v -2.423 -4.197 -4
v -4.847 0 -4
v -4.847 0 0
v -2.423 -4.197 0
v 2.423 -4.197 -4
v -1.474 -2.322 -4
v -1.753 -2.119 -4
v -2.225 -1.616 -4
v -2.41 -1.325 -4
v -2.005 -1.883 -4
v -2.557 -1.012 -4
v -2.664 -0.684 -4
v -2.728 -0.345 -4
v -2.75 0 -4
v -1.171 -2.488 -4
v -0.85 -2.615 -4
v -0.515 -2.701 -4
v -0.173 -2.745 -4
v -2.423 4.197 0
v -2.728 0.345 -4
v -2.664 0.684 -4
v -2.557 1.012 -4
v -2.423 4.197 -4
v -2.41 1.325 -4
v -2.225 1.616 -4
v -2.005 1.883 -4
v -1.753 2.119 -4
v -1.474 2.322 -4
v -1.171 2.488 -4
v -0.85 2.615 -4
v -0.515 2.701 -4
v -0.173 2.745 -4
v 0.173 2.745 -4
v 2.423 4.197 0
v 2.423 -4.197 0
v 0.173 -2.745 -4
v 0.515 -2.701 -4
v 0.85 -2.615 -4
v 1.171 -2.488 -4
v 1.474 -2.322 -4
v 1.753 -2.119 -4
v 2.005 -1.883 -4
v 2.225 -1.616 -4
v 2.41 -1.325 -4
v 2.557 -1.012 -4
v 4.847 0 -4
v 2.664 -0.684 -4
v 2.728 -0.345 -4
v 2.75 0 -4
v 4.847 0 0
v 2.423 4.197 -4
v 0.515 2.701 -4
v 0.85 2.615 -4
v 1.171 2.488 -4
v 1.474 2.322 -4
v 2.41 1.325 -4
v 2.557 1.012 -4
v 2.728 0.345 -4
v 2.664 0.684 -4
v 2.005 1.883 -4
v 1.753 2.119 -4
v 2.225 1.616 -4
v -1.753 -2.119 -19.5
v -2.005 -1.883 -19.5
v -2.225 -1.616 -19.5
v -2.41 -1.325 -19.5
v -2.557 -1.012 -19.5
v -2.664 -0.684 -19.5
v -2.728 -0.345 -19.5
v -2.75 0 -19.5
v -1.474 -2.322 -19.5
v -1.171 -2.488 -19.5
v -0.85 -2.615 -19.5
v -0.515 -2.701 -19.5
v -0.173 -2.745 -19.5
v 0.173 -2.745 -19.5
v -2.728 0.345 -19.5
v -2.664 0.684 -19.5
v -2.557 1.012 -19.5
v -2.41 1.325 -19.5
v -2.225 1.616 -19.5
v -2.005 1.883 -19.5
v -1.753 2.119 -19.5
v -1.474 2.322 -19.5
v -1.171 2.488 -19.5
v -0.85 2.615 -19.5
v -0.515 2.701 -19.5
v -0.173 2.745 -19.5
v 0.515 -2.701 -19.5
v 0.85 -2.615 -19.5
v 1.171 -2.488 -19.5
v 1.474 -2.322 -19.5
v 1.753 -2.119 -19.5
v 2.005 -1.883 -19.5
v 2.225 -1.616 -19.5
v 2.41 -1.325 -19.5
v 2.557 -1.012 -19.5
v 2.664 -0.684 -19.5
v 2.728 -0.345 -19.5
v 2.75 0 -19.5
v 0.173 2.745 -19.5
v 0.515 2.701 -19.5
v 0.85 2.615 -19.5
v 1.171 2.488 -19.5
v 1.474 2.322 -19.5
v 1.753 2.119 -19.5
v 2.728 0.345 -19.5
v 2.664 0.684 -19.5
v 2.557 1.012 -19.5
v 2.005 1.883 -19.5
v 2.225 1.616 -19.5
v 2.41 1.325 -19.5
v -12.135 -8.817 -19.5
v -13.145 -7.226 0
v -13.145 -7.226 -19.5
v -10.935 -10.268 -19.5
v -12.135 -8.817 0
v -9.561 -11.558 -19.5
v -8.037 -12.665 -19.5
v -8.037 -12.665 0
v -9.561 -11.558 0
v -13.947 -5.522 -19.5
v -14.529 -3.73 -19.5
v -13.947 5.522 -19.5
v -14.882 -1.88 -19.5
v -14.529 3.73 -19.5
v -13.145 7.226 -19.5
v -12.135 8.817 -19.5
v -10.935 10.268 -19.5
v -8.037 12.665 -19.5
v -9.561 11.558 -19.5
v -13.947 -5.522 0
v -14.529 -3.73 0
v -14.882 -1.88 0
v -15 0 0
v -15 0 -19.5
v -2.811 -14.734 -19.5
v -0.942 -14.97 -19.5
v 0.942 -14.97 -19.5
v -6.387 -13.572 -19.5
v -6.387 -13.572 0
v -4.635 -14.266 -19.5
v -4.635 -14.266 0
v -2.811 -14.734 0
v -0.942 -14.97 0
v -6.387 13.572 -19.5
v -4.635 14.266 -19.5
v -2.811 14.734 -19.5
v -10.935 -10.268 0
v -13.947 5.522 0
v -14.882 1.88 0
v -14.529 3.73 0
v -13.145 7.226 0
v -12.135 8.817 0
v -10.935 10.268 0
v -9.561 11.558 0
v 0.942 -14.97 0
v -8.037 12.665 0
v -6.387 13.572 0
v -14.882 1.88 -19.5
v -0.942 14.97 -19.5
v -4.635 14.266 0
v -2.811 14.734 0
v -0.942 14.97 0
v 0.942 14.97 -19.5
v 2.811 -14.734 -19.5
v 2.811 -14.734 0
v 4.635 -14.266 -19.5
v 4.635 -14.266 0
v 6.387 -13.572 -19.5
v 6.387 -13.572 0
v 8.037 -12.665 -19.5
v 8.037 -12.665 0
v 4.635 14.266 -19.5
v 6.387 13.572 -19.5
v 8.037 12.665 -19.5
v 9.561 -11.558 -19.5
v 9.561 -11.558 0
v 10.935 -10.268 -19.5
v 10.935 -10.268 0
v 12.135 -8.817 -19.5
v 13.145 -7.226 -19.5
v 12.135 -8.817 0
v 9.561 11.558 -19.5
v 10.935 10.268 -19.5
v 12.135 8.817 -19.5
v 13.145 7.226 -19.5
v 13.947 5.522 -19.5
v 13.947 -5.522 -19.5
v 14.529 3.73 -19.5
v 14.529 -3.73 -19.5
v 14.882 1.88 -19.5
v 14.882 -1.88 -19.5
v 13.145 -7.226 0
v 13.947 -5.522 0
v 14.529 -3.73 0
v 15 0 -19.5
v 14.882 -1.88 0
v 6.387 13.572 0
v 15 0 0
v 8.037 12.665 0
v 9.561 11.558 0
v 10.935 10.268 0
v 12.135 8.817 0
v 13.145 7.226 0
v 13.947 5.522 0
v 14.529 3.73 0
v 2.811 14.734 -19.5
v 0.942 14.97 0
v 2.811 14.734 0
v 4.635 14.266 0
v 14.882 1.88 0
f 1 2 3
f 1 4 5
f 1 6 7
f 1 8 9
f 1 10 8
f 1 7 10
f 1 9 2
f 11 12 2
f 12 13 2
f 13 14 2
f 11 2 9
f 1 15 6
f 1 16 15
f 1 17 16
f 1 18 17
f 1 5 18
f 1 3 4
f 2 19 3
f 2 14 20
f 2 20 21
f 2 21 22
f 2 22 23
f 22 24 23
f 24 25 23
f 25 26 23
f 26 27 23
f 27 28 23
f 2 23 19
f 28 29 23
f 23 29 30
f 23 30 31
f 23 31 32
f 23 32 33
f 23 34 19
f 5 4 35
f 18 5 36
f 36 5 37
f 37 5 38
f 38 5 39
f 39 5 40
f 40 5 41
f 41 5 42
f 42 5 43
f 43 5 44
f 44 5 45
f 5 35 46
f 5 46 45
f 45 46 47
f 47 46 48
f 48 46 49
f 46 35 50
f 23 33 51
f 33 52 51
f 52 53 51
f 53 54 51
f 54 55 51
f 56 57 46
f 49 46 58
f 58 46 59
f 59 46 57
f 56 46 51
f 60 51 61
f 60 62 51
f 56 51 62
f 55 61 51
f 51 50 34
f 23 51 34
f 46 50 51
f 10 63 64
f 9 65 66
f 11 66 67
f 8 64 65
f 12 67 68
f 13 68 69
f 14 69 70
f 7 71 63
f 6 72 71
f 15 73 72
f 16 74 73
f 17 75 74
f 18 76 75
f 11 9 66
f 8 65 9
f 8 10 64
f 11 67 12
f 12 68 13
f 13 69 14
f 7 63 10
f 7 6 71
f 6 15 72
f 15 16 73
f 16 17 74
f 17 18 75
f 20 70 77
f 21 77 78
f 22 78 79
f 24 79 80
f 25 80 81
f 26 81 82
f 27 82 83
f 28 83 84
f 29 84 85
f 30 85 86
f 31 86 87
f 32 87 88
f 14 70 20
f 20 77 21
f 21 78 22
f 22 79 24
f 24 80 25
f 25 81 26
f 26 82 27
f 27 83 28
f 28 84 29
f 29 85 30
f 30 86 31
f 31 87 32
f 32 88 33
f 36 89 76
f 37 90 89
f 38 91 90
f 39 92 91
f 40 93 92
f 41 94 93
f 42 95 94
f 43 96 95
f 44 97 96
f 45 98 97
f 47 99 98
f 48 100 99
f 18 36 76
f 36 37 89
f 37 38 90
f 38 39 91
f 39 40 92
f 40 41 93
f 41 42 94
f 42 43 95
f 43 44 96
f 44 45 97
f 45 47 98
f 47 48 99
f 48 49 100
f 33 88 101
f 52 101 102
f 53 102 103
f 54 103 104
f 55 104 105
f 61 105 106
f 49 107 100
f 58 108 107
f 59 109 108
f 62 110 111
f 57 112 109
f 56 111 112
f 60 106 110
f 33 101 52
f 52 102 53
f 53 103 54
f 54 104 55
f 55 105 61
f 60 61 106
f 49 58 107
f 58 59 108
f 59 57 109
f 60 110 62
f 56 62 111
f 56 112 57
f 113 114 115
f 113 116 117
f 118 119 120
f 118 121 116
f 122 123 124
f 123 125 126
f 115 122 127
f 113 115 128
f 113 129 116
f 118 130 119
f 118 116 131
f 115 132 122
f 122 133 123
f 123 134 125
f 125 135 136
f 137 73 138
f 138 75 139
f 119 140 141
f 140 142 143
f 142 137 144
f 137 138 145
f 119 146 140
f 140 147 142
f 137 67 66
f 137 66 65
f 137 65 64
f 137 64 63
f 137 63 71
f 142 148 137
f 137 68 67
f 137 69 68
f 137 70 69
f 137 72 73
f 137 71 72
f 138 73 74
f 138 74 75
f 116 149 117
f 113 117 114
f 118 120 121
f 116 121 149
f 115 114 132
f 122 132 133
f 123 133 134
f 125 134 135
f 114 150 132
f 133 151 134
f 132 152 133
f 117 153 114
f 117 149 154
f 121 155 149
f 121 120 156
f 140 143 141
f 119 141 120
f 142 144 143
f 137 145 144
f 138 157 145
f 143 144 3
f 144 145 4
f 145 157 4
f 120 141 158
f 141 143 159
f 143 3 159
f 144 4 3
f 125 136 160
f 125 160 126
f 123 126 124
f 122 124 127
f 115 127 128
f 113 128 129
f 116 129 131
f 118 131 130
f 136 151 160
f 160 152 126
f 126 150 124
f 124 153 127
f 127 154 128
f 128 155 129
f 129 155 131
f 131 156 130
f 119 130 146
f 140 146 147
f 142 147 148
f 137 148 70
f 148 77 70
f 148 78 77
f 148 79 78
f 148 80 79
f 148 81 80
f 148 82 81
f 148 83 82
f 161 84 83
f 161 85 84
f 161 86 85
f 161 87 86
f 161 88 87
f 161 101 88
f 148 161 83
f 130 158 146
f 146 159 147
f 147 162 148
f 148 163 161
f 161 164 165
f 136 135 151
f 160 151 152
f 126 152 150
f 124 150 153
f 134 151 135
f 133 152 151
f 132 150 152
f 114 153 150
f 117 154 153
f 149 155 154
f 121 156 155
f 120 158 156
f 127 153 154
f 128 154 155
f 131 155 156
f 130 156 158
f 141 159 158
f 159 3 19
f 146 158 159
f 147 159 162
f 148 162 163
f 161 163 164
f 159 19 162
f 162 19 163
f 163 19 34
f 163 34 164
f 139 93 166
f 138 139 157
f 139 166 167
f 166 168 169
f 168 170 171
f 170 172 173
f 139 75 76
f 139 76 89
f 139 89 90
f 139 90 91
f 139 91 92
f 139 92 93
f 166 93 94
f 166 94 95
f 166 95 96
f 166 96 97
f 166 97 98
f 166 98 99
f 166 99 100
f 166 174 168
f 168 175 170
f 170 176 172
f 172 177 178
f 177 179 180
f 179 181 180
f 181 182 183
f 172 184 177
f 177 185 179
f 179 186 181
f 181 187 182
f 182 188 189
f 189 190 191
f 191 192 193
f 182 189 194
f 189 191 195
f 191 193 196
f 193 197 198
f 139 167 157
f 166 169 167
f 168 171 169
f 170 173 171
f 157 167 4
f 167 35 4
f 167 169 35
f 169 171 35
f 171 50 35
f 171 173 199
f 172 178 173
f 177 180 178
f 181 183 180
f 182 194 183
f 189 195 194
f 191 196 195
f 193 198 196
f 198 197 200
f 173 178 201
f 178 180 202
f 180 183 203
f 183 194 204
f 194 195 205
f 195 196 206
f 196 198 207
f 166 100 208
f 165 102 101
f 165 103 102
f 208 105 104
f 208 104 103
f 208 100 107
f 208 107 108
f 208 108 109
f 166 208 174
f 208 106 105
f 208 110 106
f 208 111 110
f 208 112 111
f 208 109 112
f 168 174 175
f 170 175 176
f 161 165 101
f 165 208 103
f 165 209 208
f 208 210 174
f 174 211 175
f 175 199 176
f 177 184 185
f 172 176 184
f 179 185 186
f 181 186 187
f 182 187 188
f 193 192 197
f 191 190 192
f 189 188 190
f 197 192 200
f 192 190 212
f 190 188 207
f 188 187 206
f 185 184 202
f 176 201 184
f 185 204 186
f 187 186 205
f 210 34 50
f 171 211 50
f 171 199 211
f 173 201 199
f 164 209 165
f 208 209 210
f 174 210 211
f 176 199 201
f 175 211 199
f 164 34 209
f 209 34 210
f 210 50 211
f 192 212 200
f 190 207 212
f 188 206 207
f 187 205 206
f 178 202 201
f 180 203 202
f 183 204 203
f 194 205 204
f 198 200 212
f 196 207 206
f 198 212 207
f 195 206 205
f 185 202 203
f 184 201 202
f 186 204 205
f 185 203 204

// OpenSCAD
$fn = 50;

difference() {
	union() {
		translate(v = [0, 0, -19.5]) {
			cylinder(h = 19.5, r = 15.0);
		}
	}
	union() {
		translate(v = [0, 0, 0]) {
			rotate(a = [0, 0, 0]) {
				difference() {
					union() {
						translate(v = [0, 0, -4]) {
							linear_extrude(height = 4) {
								polygon(points = [[4.8468, 0.0], [2.4234000000000004, 4.197451927062417], [-2.423399999999999, 4.197451927062417], [-4.8468, 5.935618106107392e-16], [-2.423400000000002, -4.197451927062416], [2.423399999999997, -4.197451927062419]]);
							}
						}
					}
					union();
				}
			}
		}
		#translate(v = [0, 0, -100.0]) {
			cylinder(h = 200, r = 2.75);
		}
	}
}
